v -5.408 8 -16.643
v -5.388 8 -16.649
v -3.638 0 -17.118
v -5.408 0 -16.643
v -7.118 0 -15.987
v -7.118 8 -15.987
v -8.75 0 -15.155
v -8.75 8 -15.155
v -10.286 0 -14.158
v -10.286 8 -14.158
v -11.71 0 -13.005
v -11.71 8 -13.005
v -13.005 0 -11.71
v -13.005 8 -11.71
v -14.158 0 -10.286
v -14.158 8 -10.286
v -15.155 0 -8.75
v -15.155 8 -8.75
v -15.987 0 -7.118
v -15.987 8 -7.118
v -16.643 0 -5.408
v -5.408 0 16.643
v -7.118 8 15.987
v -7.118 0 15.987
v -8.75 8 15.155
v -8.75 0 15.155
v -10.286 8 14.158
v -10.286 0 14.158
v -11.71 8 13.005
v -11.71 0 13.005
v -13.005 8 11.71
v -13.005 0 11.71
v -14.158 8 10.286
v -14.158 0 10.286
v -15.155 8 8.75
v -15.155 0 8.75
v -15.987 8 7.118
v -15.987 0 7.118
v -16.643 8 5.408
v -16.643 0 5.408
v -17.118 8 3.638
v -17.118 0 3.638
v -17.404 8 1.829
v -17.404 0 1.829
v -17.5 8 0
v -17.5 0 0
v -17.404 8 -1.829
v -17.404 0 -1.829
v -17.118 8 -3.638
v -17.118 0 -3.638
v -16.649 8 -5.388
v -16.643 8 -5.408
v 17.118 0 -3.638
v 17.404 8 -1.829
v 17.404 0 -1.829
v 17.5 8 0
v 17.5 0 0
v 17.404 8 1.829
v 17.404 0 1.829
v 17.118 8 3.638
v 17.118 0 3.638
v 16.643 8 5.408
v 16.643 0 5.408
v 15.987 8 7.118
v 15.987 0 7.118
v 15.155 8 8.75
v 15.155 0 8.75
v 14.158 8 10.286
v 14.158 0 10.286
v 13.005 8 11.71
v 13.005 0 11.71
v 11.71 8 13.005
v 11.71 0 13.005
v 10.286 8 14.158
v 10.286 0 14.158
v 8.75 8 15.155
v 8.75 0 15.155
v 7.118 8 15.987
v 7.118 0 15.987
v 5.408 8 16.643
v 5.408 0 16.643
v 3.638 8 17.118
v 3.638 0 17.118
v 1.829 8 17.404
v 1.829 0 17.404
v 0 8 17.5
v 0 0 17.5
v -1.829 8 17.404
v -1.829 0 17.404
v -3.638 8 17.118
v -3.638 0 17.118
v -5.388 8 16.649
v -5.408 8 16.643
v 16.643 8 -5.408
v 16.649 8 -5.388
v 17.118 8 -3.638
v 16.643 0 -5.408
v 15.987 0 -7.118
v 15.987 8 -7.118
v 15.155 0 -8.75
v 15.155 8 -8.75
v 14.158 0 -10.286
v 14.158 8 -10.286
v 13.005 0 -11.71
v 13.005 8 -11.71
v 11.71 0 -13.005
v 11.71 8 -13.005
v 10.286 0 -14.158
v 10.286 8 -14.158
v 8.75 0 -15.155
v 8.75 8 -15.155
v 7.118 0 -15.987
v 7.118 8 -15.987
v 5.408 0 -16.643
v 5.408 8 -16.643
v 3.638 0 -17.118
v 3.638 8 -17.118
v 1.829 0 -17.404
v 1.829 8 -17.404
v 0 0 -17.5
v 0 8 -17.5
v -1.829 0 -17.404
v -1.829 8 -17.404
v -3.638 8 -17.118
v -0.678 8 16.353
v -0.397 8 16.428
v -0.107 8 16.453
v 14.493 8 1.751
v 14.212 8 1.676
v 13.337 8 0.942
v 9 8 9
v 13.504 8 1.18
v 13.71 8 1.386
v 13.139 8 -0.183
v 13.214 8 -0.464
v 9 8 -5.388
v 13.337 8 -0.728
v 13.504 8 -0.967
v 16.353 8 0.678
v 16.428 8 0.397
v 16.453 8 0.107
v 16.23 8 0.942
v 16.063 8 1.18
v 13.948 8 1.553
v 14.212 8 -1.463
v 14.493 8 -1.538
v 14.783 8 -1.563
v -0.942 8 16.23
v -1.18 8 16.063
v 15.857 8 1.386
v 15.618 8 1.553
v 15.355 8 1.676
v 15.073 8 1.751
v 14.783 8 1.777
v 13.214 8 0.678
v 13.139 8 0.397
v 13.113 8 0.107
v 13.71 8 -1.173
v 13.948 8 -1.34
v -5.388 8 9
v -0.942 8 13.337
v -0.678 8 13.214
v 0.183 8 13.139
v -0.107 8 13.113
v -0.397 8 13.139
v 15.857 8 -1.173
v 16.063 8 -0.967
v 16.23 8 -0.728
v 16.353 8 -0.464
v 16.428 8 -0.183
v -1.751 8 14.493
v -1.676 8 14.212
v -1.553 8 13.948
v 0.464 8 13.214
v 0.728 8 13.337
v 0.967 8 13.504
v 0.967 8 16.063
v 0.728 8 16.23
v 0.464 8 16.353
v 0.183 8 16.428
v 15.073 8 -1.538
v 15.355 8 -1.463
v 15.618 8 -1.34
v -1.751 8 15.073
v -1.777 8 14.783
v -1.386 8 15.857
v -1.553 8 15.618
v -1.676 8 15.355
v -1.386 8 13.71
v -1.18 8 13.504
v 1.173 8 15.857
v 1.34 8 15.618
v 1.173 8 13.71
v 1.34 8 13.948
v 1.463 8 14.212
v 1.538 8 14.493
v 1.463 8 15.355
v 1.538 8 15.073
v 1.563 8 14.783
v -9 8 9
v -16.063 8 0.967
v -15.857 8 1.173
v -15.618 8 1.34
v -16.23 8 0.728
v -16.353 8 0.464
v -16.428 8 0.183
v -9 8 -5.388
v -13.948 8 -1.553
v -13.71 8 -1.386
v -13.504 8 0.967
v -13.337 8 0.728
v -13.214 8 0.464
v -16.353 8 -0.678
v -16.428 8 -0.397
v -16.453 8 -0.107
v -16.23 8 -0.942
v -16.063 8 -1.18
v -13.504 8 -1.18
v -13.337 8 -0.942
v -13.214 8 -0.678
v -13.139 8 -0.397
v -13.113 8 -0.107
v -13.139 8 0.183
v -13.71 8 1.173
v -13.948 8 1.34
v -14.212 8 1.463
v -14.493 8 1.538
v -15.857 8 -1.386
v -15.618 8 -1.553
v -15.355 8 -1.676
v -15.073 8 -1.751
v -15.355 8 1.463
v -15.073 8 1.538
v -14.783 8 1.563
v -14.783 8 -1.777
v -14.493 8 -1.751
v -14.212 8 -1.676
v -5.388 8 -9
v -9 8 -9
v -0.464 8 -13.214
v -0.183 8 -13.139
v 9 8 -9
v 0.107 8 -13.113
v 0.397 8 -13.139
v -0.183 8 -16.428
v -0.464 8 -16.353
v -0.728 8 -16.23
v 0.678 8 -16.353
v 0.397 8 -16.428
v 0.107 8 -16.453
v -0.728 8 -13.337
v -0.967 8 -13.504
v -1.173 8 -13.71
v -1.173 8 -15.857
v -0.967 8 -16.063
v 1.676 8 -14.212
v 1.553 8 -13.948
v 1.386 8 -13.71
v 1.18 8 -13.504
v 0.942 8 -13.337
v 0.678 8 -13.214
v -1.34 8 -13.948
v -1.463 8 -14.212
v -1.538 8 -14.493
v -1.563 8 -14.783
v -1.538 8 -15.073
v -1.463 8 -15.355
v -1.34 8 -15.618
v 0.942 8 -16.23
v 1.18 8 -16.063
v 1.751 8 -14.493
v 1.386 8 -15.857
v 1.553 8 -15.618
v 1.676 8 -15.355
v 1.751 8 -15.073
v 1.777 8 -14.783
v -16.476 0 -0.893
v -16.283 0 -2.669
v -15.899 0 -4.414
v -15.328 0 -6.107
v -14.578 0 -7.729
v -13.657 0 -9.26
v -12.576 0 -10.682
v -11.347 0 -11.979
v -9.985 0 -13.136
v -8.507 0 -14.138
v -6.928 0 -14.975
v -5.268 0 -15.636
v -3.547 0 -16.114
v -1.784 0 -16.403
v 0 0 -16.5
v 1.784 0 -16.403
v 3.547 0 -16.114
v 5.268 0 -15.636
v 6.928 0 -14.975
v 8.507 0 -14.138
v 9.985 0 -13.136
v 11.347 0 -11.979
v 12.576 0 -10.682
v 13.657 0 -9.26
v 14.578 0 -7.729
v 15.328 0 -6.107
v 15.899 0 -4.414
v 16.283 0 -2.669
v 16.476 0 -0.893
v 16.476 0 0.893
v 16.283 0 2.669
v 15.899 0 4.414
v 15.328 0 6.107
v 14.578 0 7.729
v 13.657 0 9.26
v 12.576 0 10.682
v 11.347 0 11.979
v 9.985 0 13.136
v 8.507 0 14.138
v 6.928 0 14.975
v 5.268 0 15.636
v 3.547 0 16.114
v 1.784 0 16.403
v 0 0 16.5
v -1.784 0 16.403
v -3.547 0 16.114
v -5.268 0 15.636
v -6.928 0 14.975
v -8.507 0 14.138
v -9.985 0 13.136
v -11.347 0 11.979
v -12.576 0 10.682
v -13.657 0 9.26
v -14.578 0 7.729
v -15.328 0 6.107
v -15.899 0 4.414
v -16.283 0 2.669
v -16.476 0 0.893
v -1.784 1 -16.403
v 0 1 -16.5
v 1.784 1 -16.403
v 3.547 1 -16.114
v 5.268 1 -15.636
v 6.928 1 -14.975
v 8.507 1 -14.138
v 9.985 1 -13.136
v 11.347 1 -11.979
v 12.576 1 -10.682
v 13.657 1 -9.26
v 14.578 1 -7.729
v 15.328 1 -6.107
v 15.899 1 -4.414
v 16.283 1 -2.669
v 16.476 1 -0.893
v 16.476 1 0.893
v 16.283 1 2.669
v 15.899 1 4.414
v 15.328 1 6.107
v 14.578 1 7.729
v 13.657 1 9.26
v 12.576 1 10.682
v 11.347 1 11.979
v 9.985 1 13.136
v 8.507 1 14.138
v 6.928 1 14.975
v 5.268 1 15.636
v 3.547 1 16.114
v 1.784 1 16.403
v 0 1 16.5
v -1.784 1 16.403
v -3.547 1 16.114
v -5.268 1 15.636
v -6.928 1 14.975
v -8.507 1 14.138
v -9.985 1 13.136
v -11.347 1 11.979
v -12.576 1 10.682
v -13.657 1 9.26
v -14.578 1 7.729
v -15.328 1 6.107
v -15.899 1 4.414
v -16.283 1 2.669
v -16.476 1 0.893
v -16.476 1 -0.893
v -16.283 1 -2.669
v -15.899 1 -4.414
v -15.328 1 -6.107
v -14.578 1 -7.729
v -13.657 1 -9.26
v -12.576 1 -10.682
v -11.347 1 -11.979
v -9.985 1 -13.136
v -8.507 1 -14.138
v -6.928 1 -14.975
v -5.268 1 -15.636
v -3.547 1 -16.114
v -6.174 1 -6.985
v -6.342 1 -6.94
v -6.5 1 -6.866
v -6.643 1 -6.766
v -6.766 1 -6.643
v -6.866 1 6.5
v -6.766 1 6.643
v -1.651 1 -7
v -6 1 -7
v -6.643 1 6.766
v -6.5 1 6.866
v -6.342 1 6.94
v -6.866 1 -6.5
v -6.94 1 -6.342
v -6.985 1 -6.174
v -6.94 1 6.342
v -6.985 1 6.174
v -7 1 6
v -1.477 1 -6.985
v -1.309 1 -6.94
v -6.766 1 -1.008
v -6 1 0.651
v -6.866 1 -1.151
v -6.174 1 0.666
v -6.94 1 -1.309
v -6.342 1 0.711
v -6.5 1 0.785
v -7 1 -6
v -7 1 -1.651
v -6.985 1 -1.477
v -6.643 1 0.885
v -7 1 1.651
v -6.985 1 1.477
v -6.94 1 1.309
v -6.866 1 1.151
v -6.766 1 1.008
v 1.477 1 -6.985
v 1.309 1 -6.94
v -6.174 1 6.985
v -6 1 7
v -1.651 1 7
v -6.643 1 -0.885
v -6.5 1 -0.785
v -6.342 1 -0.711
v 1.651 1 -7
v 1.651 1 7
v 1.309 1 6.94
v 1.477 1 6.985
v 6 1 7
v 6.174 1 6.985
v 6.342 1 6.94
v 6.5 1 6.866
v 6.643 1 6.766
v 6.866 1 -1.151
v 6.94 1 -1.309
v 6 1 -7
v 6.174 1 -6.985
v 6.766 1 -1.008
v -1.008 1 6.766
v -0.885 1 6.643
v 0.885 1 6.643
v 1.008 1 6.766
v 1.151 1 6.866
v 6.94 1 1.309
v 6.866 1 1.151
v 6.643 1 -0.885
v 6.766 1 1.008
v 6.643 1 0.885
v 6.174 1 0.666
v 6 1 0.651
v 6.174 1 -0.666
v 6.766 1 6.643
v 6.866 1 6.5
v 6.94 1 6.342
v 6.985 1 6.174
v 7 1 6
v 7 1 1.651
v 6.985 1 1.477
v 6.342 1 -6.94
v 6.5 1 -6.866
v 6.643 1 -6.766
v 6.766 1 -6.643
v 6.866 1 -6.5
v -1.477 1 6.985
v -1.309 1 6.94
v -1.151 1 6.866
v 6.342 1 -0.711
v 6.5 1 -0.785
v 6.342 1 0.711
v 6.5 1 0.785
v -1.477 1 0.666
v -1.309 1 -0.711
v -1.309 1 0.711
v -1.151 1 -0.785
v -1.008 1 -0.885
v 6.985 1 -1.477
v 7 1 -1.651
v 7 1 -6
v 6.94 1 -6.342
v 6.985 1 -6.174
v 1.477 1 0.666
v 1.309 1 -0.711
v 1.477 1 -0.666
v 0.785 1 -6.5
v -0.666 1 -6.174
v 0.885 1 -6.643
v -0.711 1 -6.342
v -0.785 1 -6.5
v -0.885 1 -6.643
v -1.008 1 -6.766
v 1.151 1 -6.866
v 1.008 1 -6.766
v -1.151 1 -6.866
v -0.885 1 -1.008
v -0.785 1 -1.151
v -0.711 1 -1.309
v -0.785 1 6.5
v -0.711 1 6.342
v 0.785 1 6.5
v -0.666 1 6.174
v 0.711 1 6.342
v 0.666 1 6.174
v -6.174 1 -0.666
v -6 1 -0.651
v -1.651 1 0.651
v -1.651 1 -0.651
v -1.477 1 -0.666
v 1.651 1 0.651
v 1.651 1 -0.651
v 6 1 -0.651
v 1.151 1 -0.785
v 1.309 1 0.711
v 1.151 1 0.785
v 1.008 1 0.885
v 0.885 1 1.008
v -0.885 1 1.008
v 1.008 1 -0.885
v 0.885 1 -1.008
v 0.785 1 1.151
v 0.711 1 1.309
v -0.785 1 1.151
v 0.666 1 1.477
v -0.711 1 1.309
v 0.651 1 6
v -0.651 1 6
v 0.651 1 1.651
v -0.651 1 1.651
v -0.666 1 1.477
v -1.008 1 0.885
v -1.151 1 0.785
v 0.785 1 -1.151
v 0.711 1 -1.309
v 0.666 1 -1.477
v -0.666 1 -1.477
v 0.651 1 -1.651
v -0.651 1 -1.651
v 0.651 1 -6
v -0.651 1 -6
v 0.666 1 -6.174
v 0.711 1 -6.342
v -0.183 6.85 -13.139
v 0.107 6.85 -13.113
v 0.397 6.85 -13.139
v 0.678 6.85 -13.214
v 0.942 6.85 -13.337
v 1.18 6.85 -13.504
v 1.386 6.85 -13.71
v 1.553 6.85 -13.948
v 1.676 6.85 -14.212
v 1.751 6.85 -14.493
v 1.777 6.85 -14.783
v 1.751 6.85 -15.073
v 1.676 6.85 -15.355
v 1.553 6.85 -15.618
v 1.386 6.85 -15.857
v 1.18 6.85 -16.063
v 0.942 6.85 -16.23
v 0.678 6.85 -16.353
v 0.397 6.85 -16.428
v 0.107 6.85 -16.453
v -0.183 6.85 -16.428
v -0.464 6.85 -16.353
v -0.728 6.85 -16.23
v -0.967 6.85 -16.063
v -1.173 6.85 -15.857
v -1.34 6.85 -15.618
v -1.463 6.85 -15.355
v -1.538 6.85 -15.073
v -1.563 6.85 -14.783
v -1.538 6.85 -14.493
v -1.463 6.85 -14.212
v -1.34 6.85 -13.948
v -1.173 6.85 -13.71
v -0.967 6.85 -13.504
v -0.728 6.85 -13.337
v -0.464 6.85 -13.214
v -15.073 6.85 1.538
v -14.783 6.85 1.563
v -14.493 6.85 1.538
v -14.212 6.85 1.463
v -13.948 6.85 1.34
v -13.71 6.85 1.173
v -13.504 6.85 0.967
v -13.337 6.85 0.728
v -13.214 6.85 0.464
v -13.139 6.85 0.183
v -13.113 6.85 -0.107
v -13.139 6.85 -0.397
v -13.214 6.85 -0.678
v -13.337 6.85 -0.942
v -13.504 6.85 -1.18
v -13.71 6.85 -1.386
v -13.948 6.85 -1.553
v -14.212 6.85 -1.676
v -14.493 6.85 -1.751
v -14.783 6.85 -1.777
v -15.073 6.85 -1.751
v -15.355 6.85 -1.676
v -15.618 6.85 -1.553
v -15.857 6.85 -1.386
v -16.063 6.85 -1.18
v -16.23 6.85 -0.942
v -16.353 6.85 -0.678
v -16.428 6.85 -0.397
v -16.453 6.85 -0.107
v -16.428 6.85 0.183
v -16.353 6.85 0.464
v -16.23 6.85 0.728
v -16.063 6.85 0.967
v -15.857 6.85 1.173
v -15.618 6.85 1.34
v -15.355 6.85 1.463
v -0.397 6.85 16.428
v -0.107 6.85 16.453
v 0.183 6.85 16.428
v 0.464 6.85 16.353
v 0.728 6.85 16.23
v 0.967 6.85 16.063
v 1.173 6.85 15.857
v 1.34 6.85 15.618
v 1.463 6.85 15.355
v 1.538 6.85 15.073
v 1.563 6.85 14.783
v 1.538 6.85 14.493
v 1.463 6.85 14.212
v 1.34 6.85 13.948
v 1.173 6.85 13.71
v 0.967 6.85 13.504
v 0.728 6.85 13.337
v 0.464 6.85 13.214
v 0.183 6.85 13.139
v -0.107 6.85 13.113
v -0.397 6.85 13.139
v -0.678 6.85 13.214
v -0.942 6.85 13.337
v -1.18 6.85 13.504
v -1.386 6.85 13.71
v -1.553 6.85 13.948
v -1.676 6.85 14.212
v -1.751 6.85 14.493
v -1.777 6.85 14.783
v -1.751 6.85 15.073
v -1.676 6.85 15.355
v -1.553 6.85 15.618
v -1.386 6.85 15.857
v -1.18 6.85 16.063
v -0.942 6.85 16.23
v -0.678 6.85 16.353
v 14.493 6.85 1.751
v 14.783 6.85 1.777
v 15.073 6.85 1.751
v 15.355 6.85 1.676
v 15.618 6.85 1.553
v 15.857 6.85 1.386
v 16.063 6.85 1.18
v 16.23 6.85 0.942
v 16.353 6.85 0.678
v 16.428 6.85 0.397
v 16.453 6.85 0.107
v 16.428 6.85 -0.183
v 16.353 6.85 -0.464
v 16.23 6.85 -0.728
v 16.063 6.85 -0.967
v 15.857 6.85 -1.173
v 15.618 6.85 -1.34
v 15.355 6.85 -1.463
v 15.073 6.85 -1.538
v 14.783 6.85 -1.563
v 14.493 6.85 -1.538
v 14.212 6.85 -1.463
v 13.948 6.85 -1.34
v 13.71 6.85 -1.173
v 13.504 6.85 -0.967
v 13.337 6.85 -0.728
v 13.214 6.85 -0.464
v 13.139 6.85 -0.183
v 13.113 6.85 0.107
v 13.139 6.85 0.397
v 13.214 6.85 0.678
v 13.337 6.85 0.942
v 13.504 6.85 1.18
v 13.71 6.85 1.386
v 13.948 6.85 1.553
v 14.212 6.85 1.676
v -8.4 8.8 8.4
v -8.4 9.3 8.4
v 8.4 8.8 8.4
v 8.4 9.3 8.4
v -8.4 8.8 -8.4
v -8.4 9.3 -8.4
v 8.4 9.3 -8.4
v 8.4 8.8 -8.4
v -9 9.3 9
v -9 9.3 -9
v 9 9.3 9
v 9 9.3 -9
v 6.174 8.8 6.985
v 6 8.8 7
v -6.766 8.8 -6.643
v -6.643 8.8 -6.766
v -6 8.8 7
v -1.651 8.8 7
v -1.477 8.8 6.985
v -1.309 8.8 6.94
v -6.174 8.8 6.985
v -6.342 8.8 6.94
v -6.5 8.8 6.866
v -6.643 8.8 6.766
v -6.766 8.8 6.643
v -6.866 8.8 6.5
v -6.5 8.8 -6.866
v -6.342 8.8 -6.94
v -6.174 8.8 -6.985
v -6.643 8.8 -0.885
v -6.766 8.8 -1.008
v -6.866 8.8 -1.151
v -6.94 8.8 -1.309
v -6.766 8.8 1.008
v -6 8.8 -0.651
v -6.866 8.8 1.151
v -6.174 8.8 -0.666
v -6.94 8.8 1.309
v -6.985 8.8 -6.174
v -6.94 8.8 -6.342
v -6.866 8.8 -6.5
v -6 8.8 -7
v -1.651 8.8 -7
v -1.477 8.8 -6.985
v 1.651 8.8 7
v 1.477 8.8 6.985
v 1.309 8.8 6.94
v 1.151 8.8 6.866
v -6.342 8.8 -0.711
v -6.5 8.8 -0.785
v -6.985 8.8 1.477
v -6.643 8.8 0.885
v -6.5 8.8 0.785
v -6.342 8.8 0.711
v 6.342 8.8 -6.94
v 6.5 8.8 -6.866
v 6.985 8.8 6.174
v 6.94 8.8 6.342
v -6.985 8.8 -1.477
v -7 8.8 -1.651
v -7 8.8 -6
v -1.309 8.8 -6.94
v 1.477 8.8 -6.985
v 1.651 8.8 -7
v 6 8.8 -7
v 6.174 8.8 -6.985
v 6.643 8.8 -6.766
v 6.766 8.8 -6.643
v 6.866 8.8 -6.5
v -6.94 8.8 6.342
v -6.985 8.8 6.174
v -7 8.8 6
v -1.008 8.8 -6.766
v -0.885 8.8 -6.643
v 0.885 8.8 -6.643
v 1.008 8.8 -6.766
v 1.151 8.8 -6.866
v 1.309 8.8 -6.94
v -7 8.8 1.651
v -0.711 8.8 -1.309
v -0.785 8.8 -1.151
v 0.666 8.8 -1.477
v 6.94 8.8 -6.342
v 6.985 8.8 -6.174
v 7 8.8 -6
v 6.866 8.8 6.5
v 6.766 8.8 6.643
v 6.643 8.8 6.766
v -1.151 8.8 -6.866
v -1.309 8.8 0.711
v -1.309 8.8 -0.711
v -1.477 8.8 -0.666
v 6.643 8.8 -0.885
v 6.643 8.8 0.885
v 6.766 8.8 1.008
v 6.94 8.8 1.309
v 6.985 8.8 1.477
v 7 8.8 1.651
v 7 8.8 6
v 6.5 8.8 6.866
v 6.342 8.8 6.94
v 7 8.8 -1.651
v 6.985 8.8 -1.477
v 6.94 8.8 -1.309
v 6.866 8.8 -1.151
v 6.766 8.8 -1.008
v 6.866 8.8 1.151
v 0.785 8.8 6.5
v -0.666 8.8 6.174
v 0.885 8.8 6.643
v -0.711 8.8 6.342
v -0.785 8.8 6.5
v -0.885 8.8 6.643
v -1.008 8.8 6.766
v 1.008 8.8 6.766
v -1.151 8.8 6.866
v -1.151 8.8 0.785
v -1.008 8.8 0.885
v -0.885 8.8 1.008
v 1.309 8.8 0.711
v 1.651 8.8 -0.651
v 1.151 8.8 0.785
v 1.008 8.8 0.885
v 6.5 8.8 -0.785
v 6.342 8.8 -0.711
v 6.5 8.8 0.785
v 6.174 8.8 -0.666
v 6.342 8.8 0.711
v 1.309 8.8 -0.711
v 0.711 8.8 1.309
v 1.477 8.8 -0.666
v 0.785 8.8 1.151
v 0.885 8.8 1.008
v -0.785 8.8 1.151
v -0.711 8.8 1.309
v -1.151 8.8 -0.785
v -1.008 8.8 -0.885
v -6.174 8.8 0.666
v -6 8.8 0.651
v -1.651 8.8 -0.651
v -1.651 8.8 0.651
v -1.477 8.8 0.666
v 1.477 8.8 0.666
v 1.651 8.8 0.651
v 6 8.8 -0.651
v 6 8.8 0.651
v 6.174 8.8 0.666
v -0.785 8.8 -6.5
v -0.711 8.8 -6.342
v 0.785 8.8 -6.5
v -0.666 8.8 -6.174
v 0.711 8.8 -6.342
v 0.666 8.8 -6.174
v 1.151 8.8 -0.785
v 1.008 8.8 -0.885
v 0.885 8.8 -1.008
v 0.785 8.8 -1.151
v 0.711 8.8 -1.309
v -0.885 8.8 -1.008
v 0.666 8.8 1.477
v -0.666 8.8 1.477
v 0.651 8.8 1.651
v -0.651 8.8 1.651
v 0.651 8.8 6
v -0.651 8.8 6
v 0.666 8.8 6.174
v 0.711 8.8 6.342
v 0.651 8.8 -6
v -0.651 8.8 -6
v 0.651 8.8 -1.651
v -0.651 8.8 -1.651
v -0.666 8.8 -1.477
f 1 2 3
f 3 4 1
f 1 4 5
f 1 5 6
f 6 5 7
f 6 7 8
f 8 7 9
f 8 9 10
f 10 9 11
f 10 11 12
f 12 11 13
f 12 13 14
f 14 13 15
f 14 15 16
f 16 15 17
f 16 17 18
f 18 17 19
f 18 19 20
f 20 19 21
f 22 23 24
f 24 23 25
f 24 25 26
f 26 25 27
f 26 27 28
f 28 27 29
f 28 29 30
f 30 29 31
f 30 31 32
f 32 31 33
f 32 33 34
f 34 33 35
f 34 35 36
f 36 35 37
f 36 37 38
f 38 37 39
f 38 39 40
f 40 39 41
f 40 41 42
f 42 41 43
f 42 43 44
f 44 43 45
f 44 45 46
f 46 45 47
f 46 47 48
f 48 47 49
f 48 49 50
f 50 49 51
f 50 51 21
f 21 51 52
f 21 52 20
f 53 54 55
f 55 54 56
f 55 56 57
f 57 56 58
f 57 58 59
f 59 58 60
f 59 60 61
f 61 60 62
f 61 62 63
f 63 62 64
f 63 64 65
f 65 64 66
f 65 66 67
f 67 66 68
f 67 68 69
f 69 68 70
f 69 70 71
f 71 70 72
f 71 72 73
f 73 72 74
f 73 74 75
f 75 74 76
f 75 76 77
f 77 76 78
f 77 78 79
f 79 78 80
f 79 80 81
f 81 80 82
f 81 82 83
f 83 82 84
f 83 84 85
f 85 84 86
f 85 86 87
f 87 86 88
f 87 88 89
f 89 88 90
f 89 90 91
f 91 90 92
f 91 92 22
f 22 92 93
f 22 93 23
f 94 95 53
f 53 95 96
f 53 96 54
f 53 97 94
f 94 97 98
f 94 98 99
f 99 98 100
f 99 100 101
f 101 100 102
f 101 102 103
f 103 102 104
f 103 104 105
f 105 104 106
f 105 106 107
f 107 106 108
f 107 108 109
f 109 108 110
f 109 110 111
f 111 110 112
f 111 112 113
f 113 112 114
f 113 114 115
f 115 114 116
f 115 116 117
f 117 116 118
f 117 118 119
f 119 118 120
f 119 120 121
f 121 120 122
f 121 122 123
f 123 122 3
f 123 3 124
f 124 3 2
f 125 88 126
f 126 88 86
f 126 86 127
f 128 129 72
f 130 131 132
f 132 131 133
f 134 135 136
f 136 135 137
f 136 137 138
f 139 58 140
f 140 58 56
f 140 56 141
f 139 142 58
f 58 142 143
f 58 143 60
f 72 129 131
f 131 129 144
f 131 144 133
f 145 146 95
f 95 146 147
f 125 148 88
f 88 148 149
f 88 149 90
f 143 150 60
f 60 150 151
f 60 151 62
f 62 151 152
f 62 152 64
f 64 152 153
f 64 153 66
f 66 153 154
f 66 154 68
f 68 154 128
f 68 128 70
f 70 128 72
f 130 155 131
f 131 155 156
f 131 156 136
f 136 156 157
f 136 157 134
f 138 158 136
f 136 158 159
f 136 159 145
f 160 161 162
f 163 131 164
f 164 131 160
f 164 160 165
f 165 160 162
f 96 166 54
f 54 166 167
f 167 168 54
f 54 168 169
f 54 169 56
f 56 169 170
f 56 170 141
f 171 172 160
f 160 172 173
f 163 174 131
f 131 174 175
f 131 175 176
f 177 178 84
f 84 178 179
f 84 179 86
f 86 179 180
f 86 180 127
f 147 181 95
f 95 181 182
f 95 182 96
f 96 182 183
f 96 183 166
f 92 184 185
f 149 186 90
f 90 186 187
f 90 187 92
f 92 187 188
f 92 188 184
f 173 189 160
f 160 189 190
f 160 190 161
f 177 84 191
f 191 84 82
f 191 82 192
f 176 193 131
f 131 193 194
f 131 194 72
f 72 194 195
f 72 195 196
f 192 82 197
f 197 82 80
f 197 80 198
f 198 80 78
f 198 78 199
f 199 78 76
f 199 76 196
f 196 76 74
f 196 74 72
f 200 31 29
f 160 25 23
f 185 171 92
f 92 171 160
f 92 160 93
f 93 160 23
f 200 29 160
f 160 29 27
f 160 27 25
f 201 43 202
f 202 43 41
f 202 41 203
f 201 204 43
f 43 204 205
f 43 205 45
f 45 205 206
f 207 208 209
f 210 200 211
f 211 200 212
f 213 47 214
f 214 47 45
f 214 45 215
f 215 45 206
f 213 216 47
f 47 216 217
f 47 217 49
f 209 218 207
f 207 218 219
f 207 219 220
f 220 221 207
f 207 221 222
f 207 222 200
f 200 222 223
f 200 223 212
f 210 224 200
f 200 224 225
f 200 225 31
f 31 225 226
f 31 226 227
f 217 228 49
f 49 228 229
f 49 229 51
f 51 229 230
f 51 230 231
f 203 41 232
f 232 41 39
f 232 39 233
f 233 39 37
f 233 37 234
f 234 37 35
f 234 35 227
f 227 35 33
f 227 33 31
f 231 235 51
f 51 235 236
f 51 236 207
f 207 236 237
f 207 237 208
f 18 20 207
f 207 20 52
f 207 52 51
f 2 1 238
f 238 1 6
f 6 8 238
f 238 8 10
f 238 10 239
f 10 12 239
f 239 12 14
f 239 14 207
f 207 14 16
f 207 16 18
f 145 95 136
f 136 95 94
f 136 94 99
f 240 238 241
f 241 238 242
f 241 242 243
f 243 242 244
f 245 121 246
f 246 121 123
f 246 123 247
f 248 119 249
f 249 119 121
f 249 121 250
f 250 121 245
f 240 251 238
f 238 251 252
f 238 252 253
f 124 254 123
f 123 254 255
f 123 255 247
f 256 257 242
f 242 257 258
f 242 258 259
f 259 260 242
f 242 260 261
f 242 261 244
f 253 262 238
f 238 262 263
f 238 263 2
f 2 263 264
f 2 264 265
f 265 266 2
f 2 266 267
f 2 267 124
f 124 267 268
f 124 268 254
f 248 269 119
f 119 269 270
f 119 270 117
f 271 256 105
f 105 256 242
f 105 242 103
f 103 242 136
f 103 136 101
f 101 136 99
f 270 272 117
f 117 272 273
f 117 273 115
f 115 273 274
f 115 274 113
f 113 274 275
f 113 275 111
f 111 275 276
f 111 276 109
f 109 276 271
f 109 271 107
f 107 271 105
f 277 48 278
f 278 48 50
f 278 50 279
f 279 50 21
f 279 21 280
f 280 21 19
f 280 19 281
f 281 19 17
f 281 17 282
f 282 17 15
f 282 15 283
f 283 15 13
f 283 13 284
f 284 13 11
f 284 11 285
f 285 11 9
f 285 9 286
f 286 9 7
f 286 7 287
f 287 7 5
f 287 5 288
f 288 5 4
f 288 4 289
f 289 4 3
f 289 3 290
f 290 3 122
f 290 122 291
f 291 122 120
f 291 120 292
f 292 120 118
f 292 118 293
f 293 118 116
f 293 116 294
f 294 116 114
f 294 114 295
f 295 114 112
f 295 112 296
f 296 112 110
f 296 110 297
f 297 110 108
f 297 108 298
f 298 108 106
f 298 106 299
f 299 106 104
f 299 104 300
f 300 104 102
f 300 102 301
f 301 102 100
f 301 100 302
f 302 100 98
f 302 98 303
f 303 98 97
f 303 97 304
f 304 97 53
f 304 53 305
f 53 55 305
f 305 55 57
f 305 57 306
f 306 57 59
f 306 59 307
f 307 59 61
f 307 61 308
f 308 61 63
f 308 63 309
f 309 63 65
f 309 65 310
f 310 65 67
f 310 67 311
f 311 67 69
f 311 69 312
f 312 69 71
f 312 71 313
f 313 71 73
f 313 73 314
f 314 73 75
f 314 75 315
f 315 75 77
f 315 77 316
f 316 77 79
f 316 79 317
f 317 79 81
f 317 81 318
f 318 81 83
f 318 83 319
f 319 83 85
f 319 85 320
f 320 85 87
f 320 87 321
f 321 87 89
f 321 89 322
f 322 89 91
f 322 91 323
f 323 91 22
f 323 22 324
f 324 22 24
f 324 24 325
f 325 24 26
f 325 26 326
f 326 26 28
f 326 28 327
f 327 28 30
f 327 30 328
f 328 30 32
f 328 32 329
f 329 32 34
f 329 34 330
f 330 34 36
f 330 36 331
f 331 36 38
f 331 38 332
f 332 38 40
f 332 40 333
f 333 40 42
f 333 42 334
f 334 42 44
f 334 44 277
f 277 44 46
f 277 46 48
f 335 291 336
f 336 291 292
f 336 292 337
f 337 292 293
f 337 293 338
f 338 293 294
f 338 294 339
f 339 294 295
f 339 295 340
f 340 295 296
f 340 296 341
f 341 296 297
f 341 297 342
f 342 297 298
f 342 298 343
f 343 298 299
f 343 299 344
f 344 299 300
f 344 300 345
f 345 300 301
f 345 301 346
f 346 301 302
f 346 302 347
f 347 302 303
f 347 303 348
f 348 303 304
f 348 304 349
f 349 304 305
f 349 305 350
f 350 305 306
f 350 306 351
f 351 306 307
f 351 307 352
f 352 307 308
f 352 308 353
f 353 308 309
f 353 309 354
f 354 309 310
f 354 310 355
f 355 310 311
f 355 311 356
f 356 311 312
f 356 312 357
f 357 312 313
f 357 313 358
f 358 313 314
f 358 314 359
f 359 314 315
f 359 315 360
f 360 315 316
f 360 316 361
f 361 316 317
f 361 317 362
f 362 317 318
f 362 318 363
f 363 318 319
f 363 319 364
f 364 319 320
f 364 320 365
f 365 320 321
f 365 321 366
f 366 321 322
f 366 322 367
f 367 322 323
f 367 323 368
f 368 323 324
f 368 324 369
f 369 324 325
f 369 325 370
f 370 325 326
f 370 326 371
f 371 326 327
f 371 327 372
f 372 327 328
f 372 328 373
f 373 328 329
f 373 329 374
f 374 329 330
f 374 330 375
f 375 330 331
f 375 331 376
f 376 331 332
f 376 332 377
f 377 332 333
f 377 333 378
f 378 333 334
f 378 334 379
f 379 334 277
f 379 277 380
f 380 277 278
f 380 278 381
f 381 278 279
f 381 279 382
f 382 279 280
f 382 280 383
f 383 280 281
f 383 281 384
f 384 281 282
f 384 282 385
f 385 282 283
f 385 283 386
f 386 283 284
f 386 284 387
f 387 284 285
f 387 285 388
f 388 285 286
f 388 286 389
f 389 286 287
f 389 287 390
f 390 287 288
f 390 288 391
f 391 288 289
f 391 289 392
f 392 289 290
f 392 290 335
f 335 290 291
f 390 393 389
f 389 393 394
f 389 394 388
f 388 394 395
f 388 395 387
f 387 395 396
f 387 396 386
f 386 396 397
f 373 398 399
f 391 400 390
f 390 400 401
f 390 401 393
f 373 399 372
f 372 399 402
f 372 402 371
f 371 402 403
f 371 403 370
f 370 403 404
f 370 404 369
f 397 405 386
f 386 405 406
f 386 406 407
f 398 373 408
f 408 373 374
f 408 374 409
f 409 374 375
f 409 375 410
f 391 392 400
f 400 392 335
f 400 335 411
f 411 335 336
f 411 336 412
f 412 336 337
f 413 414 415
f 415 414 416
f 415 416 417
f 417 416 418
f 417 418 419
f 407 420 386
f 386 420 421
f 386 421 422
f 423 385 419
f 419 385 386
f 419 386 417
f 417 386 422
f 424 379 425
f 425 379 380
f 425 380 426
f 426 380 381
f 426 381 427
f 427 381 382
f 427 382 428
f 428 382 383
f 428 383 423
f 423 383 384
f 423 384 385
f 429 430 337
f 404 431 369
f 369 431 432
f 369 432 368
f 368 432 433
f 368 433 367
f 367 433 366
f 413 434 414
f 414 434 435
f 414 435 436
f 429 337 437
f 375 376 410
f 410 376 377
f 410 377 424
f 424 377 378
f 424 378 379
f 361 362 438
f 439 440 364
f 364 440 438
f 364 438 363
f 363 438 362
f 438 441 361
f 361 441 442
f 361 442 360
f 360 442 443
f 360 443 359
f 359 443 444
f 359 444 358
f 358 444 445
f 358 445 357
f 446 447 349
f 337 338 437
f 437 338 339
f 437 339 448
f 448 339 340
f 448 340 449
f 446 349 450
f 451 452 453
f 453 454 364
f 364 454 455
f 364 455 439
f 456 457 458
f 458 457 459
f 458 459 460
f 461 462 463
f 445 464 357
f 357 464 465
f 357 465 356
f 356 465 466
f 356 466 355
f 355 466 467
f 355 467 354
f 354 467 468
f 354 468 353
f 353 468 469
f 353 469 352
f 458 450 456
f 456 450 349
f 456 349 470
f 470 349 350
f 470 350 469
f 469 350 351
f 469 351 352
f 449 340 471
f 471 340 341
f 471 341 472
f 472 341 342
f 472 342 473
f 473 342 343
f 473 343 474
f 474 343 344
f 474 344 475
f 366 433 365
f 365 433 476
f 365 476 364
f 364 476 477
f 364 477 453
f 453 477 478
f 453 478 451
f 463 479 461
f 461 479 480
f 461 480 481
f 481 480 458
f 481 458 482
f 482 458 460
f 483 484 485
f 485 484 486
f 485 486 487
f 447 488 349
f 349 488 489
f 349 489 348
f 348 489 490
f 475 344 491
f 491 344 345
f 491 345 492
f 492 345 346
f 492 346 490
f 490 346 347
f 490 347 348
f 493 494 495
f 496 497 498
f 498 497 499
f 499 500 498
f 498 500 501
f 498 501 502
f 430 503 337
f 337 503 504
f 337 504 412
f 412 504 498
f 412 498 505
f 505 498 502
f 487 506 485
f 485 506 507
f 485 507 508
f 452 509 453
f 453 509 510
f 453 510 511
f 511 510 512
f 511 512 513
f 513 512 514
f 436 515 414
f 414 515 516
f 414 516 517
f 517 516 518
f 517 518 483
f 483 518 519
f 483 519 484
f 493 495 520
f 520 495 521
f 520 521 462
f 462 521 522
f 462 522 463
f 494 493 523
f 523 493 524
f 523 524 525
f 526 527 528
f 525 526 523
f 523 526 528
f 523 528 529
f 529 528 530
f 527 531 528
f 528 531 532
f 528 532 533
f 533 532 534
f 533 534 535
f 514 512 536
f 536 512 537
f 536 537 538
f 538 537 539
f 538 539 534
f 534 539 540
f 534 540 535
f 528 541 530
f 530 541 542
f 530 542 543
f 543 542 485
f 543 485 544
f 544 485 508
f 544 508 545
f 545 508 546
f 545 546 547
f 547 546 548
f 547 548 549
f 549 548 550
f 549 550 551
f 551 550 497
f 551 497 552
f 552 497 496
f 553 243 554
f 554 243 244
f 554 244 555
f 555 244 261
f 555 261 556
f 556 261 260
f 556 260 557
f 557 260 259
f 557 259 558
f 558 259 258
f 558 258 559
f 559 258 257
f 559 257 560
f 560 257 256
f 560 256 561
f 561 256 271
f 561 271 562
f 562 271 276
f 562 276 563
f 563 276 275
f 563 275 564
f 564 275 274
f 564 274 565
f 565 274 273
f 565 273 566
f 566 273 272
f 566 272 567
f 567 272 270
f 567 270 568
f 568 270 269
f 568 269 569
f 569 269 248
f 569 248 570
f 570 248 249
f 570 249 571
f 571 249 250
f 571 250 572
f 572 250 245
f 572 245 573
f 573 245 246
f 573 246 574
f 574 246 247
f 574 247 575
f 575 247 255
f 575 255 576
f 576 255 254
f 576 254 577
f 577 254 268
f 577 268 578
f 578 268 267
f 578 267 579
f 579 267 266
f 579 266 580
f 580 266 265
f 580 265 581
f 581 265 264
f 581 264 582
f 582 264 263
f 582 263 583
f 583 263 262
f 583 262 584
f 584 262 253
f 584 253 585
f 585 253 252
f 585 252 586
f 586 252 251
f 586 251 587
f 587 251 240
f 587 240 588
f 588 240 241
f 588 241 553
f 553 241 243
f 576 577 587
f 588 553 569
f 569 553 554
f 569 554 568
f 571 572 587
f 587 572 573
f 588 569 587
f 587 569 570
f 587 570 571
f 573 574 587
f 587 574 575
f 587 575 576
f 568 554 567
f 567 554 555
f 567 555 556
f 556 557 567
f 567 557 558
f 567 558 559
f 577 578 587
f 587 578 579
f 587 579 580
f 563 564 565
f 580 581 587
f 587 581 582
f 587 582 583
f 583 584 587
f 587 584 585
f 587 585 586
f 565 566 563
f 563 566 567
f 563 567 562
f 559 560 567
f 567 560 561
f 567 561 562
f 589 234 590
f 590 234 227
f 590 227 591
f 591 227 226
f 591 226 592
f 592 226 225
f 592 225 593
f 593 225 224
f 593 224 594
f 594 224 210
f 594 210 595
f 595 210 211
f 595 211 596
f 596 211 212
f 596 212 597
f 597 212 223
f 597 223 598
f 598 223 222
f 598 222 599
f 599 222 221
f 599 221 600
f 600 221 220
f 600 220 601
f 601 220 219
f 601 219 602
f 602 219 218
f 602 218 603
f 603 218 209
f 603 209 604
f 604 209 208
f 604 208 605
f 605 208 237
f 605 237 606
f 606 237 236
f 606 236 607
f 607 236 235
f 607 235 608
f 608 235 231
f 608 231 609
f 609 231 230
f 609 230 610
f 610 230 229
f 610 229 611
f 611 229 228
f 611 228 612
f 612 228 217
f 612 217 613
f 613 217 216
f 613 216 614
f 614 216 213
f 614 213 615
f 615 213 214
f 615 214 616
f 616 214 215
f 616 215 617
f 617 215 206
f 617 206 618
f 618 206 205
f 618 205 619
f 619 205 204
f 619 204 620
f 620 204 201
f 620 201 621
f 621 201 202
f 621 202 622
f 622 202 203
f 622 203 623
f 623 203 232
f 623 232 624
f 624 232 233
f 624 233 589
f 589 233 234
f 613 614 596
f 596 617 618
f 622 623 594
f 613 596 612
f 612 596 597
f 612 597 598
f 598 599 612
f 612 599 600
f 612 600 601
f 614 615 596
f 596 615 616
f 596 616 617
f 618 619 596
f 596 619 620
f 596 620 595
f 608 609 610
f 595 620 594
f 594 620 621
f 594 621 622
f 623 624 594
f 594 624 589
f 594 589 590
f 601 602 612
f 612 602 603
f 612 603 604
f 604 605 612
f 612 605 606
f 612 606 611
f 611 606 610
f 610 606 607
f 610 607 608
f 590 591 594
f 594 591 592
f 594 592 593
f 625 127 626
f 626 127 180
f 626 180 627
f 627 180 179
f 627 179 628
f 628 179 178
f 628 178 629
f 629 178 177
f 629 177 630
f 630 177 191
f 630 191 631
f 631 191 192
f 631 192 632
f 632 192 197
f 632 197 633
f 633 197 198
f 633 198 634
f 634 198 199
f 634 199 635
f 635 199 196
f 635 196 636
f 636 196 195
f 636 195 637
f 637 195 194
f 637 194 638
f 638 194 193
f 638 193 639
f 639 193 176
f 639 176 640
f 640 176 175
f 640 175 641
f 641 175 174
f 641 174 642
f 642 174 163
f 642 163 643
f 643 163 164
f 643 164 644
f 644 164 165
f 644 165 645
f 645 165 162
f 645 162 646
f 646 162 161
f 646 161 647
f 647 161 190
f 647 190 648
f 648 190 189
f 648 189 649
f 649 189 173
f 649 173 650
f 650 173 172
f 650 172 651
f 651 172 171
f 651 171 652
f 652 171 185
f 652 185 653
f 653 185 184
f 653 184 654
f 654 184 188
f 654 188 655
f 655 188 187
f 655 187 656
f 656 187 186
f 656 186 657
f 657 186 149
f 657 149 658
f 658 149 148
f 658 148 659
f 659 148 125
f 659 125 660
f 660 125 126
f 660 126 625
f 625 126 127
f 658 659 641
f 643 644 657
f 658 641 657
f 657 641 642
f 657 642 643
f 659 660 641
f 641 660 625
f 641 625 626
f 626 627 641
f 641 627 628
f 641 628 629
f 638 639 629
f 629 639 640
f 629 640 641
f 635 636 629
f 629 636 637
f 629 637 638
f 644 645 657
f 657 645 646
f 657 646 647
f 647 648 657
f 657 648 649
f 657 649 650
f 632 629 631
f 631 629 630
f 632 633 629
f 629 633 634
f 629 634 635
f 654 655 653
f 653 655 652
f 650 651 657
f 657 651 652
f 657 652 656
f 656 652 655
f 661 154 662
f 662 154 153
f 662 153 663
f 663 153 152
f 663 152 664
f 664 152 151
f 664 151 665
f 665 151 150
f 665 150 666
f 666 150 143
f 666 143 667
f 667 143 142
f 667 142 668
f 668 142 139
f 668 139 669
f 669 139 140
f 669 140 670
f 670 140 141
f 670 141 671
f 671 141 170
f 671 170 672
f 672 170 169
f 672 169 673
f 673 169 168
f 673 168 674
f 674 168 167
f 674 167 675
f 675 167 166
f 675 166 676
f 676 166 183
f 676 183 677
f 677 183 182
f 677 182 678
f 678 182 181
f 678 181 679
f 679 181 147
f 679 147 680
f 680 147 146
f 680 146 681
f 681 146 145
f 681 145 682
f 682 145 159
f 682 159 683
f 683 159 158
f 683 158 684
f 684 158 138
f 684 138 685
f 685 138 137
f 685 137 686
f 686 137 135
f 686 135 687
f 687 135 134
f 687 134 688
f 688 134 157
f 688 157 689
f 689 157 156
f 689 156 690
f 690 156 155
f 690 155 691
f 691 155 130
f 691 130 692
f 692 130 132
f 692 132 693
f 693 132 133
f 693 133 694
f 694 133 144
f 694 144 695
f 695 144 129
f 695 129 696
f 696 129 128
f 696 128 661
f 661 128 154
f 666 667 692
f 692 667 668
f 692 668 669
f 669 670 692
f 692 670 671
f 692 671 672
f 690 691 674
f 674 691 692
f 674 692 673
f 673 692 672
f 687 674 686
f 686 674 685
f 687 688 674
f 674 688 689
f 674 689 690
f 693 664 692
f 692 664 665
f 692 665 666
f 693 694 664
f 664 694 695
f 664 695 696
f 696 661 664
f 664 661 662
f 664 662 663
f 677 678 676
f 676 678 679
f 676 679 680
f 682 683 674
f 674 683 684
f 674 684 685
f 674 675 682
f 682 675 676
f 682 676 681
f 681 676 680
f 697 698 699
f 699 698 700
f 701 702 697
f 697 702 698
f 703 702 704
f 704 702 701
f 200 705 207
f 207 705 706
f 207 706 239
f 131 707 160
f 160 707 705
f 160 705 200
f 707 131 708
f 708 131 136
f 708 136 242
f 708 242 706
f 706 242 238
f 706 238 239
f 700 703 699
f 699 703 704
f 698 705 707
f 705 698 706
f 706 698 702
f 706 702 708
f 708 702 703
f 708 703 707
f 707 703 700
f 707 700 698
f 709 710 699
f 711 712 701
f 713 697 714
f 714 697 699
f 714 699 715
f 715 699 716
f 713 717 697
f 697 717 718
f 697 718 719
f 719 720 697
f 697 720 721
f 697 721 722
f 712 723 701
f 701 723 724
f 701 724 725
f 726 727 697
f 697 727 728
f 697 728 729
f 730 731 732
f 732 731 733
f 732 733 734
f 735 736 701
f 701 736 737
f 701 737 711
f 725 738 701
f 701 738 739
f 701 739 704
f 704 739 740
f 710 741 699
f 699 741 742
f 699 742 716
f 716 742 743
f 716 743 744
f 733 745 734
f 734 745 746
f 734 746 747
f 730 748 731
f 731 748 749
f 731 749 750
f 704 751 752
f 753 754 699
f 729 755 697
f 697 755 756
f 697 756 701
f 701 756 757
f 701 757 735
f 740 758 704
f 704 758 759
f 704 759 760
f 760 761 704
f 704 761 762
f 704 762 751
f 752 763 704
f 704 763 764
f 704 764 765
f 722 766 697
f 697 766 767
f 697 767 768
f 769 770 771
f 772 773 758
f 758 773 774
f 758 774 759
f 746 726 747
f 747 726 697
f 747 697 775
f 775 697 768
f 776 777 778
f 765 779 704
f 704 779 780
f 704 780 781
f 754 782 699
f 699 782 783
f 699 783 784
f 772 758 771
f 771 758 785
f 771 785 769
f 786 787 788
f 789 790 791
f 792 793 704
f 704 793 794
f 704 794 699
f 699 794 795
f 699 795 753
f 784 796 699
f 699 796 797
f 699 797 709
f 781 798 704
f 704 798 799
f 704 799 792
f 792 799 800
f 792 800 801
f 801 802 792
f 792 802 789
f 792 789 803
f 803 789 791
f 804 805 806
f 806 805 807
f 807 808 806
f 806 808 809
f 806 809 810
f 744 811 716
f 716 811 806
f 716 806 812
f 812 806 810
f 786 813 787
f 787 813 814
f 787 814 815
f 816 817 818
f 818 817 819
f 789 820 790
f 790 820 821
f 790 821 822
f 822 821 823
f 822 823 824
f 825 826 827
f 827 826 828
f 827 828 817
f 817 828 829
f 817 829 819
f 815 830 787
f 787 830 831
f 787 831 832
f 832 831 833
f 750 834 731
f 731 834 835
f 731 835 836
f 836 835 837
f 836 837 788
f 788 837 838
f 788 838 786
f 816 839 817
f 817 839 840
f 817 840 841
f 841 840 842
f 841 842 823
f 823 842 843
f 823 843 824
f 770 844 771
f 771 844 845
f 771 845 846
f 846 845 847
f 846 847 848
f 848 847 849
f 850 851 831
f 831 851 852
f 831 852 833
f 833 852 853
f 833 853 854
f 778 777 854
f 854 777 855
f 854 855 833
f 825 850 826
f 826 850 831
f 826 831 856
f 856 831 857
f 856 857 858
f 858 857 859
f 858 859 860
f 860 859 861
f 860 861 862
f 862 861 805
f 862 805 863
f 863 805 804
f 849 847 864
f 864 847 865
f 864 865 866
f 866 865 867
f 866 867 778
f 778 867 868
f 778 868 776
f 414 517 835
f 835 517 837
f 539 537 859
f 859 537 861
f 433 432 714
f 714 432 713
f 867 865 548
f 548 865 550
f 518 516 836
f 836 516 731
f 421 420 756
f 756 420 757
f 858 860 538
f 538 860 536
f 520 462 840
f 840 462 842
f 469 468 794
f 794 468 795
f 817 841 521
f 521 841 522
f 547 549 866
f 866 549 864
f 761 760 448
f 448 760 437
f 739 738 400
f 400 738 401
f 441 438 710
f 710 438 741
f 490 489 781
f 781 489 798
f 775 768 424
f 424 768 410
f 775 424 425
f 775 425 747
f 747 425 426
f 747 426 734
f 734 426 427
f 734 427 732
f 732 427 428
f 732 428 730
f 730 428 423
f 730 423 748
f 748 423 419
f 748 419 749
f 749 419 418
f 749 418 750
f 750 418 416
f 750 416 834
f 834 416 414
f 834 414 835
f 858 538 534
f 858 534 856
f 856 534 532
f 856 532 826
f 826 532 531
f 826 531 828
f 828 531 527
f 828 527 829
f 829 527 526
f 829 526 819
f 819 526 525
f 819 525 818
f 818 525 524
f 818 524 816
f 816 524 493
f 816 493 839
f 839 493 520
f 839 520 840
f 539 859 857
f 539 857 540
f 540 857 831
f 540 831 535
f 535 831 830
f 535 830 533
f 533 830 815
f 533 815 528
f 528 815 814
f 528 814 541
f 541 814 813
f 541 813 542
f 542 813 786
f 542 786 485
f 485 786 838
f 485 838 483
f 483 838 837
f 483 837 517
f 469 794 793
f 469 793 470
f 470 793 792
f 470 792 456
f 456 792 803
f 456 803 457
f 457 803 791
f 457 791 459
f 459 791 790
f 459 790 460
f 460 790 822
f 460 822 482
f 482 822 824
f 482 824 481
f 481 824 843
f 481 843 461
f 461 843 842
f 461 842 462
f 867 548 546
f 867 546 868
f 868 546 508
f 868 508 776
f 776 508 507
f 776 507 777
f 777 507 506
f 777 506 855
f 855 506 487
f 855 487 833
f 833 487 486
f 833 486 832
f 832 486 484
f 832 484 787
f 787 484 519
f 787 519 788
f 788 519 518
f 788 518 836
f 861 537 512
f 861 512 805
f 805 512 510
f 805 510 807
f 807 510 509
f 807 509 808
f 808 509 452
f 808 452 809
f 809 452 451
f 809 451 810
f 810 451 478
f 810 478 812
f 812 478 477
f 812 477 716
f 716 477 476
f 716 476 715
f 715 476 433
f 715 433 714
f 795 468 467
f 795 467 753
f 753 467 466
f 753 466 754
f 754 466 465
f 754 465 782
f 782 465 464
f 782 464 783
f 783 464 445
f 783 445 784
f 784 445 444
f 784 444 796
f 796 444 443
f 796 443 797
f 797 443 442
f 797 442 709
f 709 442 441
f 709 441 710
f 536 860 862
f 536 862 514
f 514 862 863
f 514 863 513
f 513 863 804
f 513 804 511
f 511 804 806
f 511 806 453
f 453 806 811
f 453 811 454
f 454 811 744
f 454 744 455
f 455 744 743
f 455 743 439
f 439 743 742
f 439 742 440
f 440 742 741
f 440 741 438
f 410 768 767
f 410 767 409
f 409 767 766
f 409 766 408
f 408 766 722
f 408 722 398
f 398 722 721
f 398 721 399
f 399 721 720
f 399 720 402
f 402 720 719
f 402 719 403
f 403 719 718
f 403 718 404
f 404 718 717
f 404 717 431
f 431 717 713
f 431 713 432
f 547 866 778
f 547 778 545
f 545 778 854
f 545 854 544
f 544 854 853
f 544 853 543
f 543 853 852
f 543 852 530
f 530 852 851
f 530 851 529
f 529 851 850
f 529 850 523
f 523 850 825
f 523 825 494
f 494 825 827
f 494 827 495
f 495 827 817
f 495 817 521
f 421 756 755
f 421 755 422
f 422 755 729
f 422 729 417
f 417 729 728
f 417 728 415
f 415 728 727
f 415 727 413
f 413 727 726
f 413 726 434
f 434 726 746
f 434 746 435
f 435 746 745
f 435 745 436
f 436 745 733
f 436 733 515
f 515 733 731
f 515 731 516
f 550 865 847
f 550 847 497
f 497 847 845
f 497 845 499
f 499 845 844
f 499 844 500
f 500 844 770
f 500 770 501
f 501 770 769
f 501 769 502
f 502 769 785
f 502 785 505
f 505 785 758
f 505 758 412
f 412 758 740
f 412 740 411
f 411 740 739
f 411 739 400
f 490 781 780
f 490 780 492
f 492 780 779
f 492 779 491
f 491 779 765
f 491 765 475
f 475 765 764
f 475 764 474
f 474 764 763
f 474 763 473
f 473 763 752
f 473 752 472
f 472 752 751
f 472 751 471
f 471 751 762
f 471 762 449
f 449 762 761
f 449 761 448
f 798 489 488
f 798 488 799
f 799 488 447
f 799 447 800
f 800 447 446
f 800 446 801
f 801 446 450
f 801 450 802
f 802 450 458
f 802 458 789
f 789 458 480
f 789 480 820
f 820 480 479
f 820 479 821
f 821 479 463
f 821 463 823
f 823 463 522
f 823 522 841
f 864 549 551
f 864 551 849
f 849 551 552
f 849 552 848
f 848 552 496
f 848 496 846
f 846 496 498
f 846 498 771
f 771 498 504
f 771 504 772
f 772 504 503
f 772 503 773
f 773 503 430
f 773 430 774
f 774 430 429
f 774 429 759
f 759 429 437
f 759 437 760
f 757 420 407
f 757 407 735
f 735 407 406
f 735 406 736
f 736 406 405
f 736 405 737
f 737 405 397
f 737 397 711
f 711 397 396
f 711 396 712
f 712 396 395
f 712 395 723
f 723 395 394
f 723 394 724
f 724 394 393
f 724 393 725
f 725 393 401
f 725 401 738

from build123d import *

# Parameters (mm, degrees)
SKETCH1_R           = 17.5
BOSS_EXTRUDE1_DEPTH = 8
SKETCH5_R           = 16.5
CUT_EXTRUDE2_DEPTH  = 1
SKETCH11_R          = 1.67
CUT_EXTRUDE5_DEPTH  = 1.15
CIRPATTERN1_COUNT   = 4
SKETCH13_W          = 18
SKETCH13_H          = 18
SKETCH13_W_2        = 16.8
SKETCH13_H_2        = 16.8
BOSS_EXTRUDE3_DEPTH = 1.3
SKETCH12_W          = 18
SKETCH12_H          = 18
SKETCH12_W_2        = 14
SKETCH12_H_2        = 14
SKETCH12_W_3        = 6.349092008
SKETCH12_H_3        = 1.301815984
SKETCH12_W_4        = 1.301815984
SKETCH12_H_4        = 6.349092008
BOSS_EXTRUDE2_DEPTH = 0.8
SKETCH14_W          = 6.349092008
SKETCH14_H          = 6.349092008
CUT_EXTRUDE6_DEPTH  = 27.009613607
FILLET1_R           = 1


with BuildPart() as part:
    # Sketch1 → Boss-Extrude1 (new body)
    with BuildSketch(Plane(origin=(0, 0, 0), x_dir=(1, 0, 0), z_dir=(0, 1, 0))):
        with Locations(Location((0, 0, 0), (0, 0, 270))):
            Circle(SKETCH1_R)
    extrude(amount=BOSS_EXTRUDE1_DEPTH)

    # Sketch5 → Cut-Extrude2 (cut)
    with BuildSketch(Plane.XZ):
        with Locations(Location((0, 0, 0), (0, 0, 270))):
            Circle(SKETCH5_R)
    extrude(amount=-CUT_EXTRUDE2_DEPTH, mode=Mode.SUBTRACT)

    # Sketch11 → Cut-Extrude5 (cut)
    with BuildSketch(Plane(origin=(0, 8, 0), x_dir=(1, 0, 0), z_dir=(0, 1, 0))):
        with Locations(Location((0.106708516, 14.783412681, 0), (0, 0, 270))):
            Circle(SKETCH11_R)
    cut_extrude5 = extrude(amount=-CUT_EXTRUDE5_DEPTH, mode=Mode.SUBTRACT)

    # CirPattern1: Cut-Extrude5 ×4 about axis
    cirpattern1_axis = Axis((0, 0, 0), (0, 1, 0))
    for i in range(1, CIRPATTERN1_COUNT):
        add(cut_extrude5.rotate(cirpattern1_axis, i * 360 / CIRPATTERN1_COUNT), mode=Mode.SUBTRACT)

    # Sketch13 → Boss-Extrude3 (add)
    with BuildSketch(Plane(origin=(0, 8, 0), x_dir=(1, 0, 0), z_dir=(0, 1, 0))):
        Rectangle(SKETCH13_W, SKETCH13_H)
        Rectangle(SKETCH13_W_2, SKETCH13_H_2, mode=Mode.SUBTRACT)
    extrude(amount=BOSS_EXTRUDE3_DEPTH)

    # Sketch12 → Boss-Extrude2 (add)
    # profile 1 of 6: a face of its own
    with BuildSketch(Plane(origin=(0, 8, 0), x_dir=(1, 0, 0), z_dir=(0, 1, 0))):
        Rectangle(SKETCH12_W, SKETCH12_H)
        Rectangle(SKETCH12_W_2, SKETCH12_H_2, mode=Mode.SUBTRACT)
    # profile 2 of 6: a face of its own
    with BuildSketch(Plane(origin=(0, 8, 0), x_dir=(1, 0, 0), z_dir=(0, 1, 0))):
        with Locations((-3.825453996, 0)):
            Rectangle(SKETCH12_W_3, SKETCH12_H_3)
    # profile 3 of 6: a face of its own
    with BuildSketch(Plane(origin=(0, 8, 0), x_dir=(1, 0, 0), z_dir=(0, 1, 0))):
        with Locations((0, 3.825453996)):
            Rectangle(SKETCH12_W_4, SKETCH12_H_4)
    # profile 4 of 6: a face of its own
    with BuildSketch(Plane(origin=(0, 8, 0), x_dir=(1, 0, 0), z_dir=(0, 1, 0))):
        with Locations((0, -3.825453996)):
            Rectangle(SKETCH12_W_4, SKETCH12_H_4)
    # profile 5 of 6: a face of its own
    with BuildSketch(Plane(origin=(0, 8, 0), x_dir=(1, 0, 0), z_dir=(0, 1, 0))):
        Rectangle(SKETCH12_W_4, SKETCH12_H_3)
    # profile 6 of 6: a face of its own
    with BuildSketch(Plane(origin=(0, 8, 0), x_dir=(1, 0, 0), z_dir=(0, 1, 0))):
        with Locations((3.825453996, 0)):
            Rectangle(SKETCH12_W_3, SKETCH12_H_3)
    extrude(amount=BOSS_EXTRUDE2_DEPTH)

    # Sketch14 → Cut-Extrude6 (cut, through all)
    with BuildSketch(Plane(origin=(0, 8, 0), x_dir=(1, 0, 0), z_dir=(0, 1, 0))):
        with Locations((-3.825453996, 3.825453996)):
            Rectangle(SKETCH14_W, SKETCH14_H)
        with Locations((-3.825453996, -3.825453996)):
            Rectangle(SKETCH14_W, SKETCH14_H)
        with Locations((3.825453996, -3.825453996)):
            Rectangle(SKETCH14_W, SKETCH14_H)
        with Locations((3.825453996, 3.825453996)):
            Rectangle(SKETCH14_W, SKETCH14_H)
    extrude(amount=-CUT_EXTRUDE6_DEPTH, mode=Mode.SUBTRACT)

    # Fillet1
    fillet1_edges = [part.edges().sort_by_distance(p)[0] for p in [
        (-7, 4.9, 0.650907992),
        (-0.650907992, 4.9, 0.650907992),
        (-0.650907992, 4.9, 7),
        (-0.650907992, 4.5, -7),
        (-0.650907992, 4.5, -0.650907992),
        (-7, 4.9, -0.650907992),
        (0.650907992, 4.9, 7),
        (0.650907992, 4.9, 0.650907992),
        (7, 4.5, 0.650907992),
        (7, 4.9, -0.650907992),
        (0.650907992, 4.9, -0.650907992),
        (0.650907992, 4.9, -7),
        (-7, 4.9, -7),
        (7, 4.5, 7),
        (7, 4.9, -7),
        (-7, 4.9, 7),
    ]]
    fillet(fillet1_edges, radius=FILLET1_R)


solid = part.part
